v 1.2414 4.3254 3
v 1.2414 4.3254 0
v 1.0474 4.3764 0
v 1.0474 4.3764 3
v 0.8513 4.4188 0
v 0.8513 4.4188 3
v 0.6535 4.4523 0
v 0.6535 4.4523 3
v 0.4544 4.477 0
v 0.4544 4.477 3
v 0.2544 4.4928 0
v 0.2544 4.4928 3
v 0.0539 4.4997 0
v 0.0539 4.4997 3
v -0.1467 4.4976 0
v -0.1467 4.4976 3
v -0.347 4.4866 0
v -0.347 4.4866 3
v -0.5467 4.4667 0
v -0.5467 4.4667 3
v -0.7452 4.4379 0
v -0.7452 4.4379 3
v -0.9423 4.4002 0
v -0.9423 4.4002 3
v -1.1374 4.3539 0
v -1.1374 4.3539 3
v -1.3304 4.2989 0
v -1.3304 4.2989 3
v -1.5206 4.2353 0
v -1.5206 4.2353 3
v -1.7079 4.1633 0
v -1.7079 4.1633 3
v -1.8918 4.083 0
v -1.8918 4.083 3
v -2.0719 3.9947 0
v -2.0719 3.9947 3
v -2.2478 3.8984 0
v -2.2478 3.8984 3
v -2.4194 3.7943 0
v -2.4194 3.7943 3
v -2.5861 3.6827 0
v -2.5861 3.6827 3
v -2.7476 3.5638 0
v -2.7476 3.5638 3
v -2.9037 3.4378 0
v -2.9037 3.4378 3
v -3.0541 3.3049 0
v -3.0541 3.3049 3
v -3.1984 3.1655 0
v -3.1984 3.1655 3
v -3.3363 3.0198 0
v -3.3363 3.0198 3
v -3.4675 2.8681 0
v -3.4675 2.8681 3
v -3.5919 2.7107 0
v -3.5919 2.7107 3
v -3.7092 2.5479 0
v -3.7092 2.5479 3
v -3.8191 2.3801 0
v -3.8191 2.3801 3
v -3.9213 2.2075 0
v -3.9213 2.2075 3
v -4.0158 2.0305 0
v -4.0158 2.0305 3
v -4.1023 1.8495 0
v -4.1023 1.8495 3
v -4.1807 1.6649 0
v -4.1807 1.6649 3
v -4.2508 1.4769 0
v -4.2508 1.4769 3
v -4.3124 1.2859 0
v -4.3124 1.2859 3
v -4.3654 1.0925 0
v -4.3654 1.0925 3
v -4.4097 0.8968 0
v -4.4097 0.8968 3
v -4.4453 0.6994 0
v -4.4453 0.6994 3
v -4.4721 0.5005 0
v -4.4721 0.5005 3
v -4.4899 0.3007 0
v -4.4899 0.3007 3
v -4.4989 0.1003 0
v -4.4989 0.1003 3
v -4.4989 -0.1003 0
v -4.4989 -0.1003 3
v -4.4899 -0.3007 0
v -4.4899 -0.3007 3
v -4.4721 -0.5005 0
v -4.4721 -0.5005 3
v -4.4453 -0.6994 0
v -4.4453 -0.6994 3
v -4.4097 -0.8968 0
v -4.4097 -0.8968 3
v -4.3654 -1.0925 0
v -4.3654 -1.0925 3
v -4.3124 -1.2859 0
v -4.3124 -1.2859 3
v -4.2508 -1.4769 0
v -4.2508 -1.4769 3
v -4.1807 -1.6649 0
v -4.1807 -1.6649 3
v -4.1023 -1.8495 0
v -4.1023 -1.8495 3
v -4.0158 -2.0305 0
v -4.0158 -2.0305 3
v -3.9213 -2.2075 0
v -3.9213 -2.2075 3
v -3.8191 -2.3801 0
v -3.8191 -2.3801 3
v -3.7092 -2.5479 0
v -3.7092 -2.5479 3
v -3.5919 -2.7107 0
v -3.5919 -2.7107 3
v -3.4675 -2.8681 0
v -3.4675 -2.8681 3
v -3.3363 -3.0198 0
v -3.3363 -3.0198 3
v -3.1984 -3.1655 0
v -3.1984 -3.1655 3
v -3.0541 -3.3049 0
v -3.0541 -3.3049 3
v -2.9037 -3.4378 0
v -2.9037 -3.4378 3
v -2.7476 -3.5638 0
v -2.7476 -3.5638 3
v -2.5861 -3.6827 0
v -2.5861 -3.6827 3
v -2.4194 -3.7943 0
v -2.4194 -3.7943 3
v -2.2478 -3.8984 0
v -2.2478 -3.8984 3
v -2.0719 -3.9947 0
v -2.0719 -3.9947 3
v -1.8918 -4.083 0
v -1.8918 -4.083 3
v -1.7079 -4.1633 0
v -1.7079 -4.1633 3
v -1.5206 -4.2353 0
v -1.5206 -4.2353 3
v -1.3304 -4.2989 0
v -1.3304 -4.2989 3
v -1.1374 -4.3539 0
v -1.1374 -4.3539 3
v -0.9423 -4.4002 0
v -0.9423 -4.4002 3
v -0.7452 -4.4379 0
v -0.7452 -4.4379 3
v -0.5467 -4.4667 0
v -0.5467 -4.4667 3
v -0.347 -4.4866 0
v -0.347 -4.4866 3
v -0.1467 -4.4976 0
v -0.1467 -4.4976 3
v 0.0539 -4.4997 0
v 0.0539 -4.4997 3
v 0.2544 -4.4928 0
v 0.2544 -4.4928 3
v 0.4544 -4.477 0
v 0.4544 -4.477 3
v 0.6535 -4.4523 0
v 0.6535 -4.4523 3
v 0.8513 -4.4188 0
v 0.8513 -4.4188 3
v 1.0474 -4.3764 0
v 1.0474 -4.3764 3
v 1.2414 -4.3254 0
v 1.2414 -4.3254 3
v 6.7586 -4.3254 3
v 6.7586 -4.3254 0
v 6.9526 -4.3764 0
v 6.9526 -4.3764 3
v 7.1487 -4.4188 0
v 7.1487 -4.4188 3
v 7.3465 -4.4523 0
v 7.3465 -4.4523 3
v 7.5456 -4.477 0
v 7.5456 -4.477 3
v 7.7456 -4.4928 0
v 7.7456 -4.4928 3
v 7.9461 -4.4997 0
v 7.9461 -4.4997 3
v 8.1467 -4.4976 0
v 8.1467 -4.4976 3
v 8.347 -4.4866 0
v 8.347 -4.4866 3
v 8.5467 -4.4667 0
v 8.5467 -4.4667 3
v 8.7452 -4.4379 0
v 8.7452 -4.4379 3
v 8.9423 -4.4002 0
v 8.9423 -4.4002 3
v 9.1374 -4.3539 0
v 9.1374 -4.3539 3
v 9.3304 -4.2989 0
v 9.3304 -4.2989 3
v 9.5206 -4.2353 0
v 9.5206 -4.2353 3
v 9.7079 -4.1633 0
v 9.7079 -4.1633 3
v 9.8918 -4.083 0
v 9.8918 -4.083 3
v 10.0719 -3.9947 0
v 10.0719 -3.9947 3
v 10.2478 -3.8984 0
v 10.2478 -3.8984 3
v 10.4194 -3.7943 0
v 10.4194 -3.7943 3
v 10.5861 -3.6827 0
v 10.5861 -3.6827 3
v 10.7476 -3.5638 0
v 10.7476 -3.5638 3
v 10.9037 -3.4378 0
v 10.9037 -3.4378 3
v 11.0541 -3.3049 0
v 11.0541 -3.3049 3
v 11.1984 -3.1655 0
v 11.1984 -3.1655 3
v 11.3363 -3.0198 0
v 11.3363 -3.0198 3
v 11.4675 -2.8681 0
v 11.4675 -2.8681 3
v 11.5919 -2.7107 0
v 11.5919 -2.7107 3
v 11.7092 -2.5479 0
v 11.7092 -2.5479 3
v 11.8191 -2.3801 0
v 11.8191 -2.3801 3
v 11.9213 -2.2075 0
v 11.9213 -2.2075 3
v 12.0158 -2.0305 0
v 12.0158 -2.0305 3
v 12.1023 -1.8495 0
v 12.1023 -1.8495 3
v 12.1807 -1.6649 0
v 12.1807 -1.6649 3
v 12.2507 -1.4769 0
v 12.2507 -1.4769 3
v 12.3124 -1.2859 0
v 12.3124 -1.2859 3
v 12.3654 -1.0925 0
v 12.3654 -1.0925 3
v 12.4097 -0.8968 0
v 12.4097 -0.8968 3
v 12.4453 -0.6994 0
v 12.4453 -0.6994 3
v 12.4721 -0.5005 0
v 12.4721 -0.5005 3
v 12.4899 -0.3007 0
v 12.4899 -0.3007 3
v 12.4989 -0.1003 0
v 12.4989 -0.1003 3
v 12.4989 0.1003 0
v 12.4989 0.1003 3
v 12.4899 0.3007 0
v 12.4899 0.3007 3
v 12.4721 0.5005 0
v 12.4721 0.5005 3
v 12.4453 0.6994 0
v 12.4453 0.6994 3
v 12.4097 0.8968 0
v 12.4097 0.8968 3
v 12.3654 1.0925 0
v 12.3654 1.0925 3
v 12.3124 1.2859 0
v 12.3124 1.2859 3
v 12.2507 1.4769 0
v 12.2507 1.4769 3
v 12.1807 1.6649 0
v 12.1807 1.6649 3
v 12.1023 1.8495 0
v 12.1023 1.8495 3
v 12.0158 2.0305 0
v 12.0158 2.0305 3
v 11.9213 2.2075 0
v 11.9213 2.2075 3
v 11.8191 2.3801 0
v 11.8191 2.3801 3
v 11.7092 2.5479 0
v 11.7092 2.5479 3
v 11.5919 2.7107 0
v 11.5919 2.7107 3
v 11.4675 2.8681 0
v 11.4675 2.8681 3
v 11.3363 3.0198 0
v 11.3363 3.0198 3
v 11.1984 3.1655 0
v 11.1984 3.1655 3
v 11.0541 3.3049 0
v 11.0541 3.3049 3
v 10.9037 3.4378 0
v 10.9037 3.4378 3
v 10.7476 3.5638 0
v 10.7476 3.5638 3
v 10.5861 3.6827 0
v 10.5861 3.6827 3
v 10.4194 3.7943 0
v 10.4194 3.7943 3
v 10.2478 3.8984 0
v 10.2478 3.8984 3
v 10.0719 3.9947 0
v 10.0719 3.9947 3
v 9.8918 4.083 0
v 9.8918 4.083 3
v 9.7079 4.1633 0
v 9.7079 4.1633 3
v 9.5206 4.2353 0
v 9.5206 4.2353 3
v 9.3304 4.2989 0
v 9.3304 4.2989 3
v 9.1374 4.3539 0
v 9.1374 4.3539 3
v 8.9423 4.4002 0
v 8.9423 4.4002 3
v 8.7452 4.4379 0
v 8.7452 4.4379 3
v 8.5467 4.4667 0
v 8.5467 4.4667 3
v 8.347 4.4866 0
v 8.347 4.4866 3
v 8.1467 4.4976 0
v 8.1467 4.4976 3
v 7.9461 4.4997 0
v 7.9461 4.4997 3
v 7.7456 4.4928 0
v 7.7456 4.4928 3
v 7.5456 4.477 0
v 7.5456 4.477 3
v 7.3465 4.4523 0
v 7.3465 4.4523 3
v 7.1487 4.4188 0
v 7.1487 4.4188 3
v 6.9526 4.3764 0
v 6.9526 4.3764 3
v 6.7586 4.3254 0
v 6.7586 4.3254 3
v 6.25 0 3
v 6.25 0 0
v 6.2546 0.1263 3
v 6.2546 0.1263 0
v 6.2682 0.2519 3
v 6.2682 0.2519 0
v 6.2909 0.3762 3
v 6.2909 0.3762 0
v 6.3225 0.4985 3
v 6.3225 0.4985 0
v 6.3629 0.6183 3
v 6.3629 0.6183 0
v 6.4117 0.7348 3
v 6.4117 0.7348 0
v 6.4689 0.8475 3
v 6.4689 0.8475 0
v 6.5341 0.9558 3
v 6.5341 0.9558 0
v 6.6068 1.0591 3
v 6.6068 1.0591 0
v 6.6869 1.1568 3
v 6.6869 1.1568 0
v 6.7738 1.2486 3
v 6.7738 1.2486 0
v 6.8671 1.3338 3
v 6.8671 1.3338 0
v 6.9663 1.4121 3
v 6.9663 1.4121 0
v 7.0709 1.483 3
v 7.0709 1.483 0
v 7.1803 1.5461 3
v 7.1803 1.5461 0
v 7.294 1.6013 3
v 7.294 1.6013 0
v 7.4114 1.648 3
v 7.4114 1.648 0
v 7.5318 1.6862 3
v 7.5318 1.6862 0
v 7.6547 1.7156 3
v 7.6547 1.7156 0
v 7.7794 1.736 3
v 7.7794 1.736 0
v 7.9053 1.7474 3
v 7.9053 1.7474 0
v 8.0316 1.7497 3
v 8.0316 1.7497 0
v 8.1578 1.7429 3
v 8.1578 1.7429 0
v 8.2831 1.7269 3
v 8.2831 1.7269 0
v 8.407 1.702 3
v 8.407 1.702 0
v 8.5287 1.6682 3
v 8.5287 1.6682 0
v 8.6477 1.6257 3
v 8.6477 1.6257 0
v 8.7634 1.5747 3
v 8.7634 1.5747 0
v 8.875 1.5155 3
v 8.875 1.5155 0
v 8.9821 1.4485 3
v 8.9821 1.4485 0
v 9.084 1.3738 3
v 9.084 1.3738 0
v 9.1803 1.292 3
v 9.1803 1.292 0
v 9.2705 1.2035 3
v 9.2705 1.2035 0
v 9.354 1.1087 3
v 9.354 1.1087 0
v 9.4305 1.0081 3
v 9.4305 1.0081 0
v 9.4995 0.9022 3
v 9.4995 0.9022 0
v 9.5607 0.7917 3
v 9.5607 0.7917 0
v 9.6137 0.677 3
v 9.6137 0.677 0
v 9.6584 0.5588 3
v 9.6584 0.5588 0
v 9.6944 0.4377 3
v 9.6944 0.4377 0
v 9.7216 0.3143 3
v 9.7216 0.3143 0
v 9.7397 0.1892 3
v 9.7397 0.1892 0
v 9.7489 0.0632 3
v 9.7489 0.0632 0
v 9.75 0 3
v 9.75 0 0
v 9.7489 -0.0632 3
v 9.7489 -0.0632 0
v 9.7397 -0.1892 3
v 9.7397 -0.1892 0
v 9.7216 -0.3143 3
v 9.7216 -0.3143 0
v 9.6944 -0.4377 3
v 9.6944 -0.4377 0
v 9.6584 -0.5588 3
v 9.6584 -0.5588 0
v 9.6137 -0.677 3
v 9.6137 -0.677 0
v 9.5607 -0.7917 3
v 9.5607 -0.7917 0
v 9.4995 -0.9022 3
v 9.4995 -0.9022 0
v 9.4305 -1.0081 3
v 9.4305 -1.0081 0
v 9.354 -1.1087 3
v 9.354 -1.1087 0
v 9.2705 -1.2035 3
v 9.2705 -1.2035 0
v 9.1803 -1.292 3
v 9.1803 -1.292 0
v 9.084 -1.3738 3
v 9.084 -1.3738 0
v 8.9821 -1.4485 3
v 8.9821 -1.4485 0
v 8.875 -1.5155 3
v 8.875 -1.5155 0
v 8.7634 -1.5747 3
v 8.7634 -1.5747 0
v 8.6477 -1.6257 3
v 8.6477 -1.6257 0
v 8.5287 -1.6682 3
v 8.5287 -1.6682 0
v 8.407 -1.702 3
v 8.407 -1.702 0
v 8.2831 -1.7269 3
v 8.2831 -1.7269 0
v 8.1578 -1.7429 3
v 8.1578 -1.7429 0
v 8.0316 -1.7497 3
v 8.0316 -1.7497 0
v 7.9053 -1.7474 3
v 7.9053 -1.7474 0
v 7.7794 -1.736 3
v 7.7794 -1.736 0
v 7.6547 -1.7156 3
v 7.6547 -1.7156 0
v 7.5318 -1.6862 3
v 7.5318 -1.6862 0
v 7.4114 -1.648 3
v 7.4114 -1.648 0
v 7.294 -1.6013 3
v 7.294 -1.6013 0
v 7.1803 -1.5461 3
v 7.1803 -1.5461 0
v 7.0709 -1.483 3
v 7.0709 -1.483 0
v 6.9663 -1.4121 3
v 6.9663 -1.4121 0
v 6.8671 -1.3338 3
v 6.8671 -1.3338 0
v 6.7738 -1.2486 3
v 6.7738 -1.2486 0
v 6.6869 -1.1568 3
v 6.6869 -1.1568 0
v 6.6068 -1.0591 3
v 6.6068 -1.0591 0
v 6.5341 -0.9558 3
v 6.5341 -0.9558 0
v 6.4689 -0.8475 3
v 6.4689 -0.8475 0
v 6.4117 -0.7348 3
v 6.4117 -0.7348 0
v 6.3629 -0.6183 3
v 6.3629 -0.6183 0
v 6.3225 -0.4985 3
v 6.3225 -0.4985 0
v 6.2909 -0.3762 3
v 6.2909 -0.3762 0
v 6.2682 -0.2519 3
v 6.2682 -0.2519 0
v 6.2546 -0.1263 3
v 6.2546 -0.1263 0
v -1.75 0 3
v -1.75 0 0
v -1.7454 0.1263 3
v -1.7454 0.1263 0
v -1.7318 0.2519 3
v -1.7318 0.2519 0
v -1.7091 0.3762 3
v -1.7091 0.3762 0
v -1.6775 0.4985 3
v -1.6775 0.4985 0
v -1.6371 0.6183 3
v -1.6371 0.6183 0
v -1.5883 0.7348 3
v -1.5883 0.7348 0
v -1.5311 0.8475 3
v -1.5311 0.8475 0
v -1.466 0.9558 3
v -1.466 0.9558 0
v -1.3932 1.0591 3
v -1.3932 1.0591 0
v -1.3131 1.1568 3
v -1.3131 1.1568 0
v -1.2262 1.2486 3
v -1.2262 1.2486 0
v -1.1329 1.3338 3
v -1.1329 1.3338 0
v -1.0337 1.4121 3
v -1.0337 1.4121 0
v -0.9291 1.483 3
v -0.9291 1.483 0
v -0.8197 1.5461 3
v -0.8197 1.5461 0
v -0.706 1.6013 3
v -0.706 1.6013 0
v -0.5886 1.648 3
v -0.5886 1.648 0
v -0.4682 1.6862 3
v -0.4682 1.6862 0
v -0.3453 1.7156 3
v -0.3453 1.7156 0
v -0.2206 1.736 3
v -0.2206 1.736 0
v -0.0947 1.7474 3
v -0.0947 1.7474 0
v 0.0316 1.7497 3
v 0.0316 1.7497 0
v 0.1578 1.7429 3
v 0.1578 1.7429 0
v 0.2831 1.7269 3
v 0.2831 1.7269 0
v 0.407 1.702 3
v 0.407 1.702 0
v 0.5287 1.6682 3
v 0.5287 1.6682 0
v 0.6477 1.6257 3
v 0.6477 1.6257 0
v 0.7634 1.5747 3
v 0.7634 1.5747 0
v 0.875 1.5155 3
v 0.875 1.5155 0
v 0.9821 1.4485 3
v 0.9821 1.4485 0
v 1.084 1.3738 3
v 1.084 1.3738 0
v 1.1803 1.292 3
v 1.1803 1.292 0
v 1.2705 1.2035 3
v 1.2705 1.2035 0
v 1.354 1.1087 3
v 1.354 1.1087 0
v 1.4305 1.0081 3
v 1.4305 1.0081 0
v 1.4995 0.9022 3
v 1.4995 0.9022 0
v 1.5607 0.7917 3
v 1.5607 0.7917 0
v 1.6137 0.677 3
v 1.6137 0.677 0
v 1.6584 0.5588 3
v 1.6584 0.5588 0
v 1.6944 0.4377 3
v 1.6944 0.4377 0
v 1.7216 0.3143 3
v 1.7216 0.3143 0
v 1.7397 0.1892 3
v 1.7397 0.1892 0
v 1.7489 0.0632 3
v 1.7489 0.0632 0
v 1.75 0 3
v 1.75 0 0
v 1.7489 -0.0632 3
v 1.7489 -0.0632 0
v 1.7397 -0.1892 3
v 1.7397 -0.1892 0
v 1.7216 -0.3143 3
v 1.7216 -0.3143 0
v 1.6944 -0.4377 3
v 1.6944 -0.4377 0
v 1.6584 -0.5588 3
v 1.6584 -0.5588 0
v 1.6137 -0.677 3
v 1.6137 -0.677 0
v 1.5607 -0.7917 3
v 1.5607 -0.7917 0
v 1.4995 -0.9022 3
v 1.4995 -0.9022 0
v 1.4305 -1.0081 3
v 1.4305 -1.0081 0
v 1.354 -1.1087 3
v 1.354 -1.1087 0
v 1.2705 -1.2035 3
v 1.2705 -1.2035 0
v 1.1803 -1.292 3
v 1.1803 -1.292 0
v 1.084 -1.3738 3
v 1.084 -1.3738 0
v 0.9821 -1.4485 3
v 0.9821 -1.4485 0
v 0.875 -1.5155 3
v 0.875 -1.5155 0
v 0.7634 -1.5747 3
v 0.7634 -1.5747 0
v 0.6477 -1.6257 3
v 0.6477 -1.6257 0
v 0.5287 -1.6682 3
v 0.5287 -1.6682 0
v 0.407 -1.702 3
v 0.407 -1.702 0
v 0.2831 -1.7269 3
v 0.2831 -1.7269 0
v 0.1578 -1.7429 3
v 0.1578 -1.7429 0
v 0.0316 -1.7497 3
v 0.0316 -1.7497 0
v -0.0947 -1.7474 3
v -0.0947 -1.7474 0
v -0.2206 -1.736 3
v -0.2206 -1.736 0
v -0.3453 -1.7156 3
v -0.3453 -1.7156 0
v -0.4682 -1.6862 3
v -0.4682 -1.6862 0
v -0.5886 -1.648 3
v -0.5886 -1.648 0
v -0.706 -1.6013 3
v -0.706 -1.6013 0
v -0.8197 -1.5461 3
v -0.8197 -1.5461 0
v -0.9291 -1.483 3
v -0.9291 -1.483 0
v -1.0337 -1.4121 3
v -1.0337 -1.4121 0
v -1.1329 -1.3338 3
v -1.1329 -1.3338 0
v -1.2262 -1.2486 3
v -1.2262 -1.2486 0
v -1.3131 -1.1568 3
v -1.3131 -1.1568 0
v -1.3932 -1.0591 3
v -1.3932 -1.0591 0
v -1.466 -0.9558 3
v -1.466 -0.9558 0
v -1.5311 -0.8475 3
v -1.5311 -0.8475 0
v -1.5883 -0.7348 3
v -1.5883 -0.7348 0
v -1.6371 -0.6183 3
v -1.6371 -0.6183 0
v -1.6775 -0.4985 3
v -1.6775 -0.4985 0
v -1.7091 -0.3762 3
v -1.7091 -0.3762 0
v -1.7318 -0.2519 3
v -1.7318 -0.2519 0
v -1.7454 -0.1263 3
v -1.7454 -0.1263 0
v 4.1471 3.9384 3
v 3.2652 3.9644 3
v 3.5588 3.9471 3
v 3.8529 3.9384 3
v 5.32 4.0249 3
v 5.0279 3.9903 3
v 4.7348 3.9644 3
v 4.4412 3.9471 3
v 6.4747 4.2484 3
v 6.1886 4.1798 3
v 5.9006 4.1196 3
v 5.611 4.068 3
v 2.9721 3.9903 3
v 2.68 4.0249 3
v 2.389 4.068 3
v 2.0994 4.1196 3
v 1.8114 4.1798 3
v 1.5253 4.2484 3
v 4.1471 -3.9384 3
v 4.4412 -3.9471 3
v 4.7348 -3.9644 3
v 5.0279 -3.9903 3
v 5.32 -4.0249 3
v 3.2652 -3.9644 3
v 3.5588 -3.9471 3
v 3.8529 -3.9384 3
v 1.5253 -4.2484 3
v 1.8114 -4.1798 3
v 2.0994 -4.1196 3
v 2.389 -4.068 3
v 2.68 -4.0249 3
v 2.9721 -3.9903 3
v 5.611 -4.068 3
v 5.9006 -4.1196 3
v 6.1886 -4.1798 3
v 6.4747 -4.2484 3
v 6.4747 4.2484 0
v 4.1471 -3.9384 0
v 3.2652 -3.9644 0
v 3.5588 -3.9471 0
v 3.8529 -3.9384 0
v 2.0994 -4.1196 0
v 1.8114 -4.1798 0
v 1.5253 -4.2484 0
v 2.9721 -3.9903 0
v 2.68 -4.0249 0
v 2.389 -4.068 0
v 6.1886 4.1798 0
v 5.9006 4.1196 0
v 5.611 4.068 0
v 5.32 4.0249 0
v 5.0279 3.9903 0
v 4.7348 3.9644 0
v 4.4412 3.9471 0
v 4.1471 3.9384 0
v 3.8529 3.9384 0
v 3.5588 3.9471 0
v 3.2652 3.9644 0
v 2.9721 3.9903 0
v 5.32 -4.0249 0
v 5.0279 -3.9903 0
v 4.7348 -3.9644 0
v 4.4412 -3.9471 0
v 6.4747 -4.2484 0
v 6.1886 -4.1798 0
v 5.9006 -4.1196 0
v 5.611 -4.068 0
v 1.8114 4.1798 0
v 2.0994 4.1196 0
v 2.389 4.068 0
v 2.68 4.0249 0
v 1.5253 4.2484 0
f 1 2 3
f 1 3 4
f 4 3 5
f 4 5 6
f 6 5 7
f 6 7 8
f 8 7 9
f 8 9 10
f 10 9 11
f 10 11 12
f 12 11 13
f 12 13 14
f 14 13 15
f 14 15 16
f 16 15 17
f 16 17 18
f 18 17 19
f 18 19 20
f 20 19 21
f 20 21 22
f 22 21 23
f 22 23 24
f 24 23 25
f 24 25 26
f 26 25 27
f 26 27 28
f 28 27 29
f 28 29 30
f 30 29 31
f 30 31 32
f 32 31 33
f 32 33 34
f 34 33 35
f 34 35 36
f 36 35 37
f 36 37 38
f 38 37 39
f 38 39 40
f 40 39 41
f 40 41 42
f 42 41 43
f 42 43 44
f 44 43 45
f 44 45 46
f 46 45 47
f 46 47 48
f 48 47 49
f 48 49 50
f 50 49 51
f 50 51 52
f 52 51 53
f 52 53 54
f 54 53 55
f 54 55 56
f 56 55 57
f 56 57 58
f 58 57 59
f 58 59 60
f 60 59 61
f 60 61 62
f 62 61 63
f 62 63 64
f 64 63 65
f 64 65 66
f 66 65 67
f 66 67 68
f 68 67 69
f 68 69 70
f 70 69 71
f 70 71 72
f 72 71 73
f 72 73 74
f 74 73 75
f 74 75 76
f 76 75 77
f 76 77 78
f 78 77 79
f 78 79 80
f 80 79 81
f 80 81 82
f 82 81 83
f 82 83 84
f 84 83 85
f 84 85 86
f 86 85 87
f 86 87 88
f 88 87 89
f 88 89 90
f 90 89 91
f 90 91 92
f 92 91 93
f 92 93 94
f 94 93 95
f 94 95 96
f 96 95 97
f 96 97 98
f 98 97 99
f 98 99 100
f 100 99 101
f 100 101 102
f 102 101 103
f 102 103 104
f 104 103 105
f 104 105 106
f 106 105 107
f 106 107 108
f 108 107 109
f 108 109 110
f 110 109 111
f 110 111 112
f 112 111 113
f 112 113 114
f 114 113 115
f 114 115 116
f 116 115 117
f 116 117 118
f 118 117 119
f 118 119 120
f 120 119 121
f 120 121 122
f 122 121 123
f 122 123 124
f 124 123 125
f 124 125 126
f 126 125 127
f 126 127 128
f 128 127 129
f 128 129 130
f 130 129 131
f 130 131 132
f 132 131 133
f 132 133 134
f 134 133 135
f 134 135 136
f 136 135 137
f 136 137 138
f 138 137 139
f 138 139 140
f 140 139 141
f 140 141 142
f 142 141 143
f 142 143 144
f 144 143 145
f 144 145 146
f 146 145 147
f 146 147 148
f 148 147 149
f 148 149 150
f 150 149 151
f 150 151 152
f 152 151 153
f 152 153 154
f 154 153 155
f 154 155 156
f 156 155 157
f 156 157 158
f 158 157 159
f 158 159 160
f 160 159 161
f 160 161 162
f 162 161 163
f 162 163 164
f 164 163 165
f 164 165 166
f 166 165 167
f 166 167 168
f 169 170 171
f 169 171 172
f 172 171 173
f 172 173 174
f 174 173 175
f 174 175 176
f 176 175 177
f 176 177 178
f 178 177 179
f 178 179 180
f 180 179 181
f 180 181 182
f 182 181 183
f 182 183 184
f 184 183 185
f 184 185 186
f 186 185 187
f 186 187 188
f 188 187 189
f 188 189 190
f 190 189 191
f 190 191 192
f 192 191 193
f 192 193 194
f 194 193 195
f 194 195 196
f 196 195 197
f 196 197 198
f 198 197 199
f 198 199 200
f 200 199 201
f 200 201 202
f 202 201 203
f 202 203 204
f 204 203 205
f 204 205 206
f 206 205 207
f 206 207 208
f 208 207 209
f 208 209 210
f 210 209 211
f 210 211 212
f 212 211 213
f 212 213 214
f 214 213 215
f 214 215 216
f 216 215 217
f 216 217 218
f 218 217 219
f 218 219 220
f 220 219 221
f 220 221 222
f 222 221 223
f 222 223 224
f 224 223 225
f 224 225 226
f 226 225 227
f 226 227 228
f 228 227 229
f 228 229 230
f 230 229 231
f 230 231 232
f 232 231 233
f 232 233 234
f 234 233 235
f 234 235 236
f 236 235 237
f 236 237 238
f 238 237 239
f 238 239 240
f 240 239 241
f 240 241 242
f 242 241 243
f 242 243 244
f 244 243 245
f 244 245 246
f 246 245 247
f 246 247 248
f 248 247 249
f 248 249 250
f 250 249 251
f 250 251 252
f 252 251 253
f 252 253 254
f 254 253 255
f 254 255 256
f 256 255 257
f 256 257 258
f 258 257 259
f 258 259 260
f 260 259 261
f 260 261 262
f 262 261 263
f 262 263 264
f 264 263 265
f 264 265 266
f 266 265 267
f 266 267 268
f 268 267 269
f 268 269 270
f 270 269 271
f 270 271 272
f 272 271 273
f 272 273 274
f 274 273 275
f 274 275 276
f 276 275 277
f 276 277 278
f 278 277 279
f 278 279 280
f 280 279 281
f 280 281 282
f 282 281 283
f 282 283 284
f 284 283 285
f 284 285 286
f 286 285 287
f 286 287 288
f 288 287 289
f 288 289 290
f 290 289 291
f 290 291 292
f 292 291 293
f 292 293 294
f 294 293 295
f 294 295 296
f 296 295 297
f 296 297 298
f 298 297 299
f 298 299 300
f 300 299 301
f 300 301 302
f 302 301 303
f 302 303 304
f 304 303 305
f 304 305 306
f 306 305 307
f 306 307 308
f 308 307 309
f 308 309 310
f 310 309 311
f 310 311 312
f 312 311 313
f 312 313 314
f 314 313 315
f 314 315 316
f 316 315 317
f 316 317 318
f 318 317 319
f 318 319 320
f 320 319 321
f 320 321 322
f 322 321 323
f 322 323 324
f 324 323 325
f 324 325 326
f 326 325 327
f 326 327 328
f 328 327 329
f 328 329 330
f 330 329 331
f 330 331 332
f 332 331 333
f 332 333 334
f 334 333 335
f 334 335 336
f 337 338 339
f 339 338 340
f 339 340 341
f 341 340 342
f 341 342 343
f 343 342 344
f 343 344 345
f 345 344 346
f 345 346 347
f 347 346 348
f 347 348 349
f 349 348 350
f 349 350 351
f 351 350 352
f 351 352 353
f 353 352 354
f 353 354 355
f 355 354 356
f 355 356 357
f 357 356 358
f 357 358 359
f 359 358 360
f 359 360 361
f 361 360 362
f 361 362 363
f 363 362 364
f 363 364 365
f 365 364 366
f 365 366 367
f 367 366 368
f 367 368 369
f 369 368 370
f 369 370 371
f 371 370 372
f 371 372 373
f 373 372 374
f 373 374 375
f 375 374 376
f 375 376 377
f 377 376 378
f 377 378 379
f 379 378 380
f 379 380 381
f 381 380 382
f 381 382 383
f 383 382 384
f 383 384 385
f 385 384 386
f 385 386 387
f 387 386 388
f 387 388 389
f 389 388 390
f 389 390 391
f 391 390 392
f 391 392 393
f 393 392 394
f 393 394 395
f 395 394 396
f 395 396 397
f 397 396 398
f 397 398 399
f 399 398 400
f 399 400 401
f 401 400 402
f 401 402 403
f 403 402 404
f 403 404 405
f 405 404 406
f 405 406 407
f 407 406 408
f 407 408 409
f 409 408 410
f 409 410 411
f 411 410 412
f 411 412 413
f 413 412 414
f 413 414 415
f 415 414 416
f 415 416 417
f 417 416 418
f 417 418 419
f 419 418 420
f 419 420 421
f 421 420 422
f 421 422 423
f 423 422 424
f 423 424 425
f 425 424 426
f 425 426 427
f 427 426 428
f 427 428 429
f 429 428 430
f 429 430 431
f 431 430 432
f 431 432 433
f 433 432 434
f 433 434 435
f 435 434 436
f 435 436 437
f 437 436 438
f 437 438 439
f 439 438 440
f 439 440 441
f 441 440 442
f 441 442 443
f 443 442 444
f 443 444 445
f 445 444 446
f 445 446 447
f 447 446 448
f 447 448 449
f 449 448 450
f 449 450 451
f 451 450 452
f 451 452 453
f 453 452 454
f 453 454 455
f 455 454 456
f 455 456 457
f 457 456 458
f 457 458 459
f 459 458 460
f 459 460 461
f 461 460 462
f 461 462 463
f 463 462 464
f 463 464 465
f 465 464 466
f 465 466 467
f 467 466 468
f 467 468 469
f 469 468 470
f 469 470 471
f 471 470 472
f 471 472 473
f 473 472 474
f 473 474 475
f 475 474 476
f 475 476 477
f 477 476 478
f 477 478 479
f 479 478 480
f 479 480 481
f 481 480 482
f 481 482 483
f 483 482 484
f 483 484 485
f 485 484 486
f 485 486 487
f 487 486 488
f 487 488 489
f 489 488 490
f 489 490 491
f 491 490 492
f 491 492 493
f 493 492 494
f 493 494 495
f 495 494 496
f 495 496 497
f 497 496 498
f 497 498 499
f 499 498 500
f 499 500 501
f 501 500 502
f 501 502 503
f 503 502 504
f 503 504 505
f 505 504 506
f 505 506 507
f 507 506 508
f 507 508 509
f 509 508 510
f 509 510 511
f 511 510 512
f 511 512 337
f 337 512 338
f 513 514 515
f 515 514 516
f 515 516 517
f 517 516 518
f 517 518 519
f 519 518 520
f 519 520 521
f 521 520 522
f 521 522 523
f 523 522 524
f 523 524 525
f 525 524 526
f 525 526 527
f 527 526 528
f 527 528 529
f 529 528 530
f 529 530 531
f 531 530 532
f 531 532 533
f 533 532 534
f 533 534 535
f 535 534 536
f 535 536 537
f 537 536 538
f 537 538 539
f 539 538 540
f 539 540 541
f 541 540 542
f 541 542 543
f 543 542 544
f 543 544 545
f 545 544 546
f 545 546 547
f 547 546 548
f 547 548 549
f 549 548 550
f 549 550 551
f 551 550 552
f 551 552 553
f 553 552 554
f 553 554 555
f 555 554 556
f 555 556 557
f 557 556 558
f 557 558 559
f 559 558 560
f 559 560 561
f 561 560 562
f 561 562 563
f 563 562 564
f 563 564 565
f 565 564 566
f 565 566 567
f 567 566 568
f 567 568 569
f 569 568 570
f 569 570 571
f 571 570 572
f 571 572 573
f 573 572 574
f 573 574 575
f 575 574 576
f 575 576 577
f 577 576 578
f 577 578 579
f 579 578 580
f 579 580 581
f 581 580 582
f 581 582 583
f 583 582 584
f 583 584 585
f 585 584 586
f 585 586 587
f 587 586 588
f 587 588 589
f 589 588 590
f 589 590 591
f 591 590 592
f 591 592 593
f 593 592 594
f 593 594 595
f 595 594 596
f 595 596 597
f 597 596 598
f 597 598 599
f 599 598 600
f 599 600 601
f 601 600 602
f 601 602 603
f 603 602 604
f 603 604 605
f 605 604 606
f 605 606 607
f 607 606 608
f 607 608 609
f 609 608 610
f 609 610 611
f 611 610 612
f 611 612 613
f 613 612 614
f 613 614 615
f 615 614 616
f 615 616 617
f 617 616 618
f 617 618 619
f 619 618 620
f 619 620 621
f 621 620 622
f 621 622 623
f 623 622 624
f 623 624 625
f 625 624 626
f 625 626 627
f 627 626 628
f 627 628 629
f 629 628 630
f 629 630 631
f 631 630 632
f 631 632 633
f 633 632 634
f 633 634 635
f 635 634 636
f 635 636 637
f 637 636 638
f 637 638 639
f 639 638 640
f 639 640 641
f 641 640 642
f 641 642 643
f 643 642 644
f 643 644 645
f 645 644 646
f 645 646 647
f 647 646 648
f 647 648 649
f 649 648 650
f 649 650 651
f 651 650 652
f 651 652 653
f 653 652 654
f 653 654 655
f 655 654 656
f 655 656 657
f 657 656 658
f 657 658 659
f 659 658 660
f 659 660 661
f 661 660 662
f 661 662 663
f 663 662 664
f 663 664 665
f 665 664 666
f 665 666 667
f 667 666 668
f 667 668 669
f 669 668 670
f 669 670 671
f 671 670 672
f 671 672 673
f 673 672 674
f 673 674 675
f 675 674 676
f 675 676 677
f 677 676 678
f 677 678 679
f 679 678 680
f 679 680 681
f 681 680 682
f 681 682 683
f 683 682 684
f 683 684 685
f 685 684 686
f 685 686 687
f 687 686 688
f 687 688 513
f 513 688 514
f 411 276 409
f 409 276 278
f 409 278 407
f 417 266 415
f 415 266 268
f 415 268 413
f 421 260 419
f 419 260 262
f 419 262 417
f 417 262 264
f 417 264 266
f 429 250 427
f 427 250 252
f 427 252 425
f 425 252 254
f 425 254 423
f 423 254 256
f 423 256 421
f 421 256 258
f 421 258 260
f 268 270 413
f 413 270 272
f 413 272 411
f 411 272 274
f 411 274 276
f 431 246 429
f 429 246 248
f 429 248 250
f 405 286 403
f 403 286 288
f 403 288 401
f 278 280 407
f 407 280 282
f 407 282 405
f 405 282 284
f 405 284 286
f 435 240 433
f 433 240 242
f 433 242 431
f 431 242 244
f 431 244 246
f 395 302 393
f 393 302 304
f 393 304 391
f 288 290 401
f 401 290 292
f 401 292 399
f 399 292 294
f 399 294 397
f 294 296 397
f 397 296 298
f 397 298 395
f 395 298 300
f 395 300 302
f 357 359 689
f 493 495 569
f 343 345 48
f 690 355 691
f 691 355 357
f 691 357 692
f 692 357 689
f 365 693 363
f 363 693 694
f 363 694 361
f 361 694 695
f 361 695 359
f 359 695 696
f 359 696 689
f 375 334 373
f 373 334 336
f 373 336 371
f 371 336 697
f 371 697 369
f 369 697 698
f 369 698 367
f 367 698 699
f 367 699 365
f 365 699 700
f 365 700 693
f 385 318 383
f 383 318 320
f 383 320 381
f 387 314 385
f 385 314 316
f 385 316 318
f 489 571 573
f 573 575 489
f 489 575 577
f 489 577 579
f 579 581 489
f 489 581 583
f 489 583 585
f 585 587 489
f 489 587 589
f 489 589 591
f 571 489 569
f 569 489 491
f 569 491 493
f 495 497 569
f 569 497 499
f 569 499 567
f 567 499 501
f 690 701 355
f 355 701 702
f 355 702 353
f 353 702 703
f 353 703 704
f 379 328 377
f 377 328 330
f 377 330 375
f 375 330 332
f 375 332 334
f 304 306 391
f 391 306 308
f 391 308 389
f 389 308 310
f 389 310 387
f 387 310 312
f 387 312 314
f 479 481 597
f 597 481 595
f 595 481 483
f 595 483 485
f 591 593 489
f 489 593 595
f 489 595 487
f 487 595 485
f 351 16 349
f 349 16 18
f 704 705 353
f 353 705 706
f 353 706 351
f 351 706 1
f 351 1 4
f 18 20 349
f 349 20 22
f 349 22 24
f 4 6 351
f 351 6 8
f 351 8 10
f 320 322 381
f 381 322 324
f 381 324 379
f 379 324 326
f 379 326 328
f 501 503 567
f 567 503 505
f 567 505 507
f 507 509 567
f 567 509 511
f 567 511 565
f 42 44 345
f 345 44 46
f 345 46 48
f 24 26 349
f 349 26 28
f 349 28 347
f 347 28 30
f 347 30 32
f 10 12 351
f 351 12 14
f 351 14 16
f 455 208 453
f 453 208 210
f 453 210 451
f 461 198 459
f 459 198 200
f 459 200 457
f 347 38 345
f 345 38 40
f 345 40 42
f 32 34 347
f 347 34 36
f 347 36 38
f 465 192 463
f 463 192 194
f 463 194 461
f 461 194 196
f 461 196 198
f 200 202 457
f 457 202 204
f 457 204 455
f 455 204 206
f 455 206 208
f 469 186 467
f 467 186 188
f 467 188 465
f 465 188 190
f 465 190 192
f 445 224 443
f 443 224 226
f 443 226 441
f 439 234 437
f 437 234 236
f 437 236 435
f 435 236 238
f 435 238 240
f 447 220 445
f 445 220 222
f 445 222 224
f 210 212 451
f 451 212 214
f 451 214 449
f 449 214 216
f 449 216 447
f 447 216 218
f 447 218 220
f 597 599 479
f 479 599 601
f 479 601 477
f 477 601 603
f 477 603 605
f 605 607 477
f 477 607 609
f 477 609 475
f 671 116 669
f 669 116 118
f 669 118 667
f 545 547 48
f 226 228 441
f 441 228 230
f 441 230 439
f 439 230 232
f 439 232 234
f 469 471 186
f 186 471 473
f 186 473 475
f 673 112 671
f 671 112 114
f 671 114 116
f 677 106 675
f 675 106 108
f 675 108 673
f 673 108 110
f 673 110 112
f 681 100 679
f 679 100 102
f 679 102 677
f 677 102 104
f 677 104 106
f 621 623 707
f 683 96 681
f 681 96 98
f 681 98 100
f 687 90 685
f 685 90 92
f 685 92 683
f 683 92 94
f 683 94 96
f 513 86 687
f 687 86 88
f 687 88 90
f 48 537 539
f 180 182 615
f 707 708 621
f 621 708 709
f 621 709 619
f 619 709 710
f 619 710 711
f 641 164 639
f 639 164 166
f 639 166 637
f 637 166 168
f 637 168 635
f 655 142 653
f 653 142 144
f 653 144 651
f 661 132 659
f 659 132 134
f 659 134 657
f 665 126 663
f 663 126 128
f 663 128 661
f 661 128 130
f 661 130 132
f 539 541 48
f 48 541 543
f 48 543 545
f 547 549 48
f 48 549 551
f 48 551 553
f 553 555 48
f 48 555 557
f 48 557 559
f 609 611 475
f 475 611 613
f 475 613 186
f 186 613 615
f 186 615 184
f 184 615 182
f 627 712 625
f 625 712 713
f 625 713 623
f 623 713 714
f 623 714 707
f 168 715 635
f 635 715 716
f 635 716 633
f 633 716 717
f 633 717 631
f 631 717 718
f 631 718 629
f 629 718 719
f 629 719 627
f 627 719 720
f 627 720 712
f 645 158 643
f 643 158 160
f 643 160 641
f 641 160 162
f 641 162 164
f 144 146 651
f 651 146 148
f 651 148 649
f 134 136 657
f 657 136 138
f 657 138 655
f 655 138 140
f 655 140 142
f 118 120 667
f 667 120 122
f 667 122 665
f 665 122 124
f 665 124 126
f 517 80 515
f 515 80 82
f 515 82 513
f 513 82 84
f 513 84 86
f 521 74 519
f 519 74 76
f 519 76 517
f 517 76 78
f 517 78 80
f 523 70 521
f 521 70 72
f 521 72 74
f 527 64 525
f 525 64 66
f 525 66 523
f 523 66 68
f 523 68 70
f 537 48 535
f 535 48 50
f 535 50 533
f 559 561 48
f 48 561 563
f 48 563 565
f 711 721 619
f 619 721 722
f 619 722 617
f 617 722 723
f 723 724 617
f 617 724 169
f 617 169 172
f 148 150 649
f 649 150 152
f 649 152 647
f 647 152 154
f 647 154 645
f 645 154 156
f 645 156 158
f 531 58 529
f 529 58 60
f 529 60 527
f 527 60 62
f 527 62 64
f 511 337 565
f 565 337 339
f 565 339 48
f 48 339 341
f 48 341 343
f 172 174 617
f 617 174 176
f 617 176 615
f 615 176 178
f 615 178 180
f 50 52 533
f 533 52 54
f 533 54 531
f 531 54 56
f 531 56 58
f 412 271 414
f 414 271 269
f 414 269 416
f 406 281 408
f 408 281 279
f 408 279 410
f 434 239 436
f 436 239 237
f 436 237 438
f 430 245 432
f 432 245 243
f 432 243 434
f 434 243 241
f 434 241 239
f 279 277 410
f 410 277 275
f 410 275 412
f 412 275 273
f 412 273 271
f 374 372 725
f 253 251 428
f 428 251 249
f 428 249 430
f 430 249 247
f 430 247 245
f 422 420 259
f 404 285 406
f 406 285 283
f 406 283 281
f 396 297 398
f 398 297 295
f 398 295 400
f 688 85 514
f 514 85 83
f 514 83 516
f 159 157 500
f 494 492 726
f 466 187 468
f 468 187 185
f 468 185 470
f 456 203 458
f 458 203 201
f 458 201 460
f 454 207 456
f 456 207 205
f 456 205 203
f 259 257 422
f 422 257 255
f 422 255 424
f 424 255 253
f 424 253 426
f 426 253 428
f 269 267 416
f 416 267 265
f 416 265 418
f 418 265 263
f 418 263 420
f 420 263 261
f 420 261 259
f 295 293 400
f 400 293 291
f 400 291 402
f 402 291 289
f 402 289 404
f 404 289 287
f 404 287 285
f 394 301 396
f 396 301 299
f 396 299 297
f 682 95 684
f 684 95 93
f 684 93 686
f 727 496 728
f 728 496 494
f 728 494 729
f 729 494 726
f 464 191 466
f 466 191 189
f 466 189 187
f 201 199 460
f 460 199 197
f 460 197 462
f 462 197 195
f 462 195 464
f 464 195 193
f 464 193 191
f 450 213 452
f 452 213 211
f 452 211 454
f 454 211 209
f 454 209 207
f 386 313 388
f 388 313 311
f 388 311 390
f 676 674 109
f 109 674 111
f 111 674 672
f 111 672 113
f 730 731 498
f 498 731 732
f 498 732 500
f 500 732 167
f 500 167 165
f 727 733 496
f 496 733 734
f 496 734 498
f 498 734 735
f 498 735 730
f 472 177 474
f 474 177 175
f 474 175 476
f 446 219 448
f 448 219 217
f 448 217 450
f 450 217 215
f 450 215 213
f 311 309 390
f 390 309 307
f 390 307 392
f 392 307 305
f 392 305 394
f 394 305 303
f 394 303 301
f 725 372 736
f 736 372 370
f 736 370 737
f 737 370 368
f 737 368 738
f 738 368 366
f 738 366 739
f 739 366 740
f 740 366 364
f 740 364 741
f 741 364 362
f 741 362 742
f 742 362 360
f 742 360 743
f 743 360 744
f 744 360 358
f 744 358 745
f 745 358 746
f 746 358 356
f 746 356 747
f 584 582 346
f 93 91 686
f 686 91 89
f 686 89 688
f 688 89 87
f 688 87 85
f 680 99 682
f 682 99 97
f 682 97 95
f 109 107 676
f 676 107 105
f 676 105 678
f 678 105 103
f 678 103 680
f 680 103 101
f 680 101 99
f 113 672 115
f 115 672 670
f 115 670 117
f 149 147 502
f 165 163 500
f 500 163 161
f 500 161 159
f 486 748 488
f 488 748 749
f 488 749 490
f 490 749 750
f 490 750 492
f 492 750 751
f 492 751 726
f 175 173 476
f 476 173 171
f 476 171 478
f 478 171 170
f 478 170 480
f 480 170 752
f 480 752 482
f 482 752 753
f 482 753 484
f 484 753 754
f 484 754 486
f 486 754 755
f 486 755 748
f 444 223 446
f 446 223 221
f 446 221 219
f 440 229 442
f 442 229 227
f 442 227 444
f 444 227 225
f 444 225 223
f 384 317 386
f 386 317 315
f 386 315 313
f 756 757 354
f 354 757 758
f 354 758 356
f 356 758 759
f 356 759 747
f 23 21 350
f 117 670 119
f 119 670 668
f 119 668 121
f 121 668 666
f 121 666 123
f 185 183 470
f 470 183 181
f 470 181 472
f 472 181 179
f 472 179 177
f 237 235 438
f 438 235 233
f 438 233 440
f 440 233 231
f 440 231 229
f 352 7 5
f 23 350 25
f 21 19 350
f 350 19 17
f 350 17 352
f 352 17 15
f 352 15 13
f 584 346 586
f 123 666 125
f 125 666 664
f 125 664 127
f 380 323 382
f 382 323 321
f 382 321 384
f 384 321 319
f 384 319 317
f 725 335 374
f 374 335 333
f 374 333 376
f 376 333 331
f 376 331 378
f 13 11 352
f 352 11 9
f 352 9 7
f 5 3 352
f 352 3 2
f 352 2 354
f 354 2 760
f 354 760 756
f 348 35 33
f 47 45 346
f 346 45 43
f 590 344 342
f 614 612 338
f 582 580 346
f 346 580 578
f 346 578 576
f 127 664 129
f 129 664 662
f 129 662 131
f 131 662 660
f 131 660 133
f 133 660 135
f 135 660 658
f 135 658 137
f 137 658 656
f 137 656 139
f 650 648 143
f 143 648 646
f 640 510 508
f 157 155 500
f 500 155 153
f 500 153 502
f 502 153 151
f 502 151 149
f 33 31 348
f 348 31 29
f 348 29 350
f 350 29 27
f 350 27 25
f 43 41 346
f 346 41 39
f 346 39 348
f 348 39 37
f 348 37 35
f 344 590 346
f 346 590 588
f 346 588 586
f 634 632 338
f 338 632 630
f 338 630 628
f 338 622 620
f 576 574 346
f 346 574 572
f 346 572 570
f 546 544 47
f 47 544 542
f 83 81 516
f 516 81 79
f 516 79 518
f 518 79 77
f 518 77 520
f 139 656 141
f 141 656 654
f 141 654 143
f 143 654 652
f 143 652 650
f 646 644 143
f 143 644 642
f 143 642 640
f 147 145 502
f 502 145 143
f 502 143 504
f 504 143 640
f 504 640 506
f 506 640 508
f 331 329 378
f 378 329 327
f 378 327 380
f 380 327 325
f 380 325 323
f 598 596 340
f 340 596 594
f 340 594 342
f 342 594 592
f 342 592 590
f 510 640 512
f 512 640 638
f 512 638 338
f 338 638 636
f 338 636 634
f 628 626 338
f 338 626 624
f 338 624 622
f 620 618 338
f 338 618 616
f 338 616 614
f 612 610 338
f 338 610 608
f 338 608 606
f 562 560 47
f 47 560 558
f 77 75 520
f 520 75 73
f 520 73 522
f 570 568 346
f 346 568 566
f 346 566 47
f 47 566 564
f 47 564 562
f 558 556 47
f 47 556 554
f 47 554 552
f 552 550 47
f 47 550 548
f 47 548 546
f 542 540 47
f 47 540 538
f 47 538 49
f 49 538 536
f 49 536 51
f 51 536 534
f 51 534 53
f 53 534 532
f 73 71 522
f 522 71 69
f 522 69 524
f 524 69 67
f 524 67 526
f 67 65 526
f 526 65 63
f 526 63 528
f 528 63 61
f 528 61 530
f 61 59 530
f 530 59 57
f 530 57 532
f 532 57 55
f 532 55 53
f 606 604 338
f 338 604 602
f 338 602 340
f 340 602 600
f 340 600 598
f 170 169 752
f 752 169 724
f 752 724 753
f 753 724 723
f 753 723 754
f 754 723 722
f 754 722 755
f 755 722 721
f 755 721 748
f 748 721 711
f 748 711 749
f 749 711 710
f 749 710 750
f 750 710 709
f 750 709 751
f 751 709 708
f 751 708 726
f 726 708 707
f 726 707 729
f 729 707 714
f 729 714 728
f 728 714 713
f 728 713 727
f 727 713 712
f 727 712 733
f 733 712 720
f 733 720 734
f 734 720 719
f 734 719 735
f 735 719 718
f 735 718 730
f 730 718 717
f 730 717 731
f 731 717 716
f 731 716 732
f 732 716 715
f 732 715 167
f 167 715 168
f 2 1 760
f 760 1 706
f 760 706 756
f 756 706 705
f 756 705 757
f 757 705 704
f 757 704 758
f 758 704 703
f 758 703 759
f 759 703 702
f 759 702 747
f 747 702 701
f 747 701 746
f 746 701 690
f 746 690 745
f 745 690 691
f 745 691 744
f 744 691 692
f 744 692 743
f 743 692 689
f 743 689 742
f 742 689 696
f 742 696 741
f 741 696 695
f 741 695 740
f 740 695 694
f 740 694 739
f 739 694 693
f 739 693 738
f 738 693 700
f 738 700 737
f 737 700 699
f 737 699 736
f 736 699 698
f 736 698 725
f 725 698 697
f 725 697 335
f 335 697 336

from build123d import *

# Parameters (mm, degrees)
SKETCH_1_R      = 4.5
SKETCH_1_R_2    = 1.75
EXTRUDE_1_DEPTH = 3
FILLET_1_R      = 10


with BuildPart() as part:
    # Эскиз1 → Бобышка-Вытянуть1 (new body)
    # profile 1 of 2: a face of its own
    with BuildSketch(Plane.XY):
        Circle(SKETCH_1_R)
        Circle(SKETCH_1_R_2, mode=Mode.SUBTRACT)
    # profile 2 of 2: a face of its own
    with BuildSketch(Plane.XY):
        with Locations((8, 0)):
            Circle(SKETCH_1_R)
        with Locations((8, 0)):
            Circle(SKETCH_1_R_2, mode=Mode.SUBTRACT)
    extrude(amount=EXTRUDE_1_DEPTH)

    # Скругление1
    fillet_1_edges = [part.edges().sort_by_distance(p)[0] for p in [
        (4, 2.061552813, 1.5),
        (4, -2.061552813, 1.5),
    ]]
    fillet(fillet_1_edges, radius=FILLET_1_R)


solid = part.part
